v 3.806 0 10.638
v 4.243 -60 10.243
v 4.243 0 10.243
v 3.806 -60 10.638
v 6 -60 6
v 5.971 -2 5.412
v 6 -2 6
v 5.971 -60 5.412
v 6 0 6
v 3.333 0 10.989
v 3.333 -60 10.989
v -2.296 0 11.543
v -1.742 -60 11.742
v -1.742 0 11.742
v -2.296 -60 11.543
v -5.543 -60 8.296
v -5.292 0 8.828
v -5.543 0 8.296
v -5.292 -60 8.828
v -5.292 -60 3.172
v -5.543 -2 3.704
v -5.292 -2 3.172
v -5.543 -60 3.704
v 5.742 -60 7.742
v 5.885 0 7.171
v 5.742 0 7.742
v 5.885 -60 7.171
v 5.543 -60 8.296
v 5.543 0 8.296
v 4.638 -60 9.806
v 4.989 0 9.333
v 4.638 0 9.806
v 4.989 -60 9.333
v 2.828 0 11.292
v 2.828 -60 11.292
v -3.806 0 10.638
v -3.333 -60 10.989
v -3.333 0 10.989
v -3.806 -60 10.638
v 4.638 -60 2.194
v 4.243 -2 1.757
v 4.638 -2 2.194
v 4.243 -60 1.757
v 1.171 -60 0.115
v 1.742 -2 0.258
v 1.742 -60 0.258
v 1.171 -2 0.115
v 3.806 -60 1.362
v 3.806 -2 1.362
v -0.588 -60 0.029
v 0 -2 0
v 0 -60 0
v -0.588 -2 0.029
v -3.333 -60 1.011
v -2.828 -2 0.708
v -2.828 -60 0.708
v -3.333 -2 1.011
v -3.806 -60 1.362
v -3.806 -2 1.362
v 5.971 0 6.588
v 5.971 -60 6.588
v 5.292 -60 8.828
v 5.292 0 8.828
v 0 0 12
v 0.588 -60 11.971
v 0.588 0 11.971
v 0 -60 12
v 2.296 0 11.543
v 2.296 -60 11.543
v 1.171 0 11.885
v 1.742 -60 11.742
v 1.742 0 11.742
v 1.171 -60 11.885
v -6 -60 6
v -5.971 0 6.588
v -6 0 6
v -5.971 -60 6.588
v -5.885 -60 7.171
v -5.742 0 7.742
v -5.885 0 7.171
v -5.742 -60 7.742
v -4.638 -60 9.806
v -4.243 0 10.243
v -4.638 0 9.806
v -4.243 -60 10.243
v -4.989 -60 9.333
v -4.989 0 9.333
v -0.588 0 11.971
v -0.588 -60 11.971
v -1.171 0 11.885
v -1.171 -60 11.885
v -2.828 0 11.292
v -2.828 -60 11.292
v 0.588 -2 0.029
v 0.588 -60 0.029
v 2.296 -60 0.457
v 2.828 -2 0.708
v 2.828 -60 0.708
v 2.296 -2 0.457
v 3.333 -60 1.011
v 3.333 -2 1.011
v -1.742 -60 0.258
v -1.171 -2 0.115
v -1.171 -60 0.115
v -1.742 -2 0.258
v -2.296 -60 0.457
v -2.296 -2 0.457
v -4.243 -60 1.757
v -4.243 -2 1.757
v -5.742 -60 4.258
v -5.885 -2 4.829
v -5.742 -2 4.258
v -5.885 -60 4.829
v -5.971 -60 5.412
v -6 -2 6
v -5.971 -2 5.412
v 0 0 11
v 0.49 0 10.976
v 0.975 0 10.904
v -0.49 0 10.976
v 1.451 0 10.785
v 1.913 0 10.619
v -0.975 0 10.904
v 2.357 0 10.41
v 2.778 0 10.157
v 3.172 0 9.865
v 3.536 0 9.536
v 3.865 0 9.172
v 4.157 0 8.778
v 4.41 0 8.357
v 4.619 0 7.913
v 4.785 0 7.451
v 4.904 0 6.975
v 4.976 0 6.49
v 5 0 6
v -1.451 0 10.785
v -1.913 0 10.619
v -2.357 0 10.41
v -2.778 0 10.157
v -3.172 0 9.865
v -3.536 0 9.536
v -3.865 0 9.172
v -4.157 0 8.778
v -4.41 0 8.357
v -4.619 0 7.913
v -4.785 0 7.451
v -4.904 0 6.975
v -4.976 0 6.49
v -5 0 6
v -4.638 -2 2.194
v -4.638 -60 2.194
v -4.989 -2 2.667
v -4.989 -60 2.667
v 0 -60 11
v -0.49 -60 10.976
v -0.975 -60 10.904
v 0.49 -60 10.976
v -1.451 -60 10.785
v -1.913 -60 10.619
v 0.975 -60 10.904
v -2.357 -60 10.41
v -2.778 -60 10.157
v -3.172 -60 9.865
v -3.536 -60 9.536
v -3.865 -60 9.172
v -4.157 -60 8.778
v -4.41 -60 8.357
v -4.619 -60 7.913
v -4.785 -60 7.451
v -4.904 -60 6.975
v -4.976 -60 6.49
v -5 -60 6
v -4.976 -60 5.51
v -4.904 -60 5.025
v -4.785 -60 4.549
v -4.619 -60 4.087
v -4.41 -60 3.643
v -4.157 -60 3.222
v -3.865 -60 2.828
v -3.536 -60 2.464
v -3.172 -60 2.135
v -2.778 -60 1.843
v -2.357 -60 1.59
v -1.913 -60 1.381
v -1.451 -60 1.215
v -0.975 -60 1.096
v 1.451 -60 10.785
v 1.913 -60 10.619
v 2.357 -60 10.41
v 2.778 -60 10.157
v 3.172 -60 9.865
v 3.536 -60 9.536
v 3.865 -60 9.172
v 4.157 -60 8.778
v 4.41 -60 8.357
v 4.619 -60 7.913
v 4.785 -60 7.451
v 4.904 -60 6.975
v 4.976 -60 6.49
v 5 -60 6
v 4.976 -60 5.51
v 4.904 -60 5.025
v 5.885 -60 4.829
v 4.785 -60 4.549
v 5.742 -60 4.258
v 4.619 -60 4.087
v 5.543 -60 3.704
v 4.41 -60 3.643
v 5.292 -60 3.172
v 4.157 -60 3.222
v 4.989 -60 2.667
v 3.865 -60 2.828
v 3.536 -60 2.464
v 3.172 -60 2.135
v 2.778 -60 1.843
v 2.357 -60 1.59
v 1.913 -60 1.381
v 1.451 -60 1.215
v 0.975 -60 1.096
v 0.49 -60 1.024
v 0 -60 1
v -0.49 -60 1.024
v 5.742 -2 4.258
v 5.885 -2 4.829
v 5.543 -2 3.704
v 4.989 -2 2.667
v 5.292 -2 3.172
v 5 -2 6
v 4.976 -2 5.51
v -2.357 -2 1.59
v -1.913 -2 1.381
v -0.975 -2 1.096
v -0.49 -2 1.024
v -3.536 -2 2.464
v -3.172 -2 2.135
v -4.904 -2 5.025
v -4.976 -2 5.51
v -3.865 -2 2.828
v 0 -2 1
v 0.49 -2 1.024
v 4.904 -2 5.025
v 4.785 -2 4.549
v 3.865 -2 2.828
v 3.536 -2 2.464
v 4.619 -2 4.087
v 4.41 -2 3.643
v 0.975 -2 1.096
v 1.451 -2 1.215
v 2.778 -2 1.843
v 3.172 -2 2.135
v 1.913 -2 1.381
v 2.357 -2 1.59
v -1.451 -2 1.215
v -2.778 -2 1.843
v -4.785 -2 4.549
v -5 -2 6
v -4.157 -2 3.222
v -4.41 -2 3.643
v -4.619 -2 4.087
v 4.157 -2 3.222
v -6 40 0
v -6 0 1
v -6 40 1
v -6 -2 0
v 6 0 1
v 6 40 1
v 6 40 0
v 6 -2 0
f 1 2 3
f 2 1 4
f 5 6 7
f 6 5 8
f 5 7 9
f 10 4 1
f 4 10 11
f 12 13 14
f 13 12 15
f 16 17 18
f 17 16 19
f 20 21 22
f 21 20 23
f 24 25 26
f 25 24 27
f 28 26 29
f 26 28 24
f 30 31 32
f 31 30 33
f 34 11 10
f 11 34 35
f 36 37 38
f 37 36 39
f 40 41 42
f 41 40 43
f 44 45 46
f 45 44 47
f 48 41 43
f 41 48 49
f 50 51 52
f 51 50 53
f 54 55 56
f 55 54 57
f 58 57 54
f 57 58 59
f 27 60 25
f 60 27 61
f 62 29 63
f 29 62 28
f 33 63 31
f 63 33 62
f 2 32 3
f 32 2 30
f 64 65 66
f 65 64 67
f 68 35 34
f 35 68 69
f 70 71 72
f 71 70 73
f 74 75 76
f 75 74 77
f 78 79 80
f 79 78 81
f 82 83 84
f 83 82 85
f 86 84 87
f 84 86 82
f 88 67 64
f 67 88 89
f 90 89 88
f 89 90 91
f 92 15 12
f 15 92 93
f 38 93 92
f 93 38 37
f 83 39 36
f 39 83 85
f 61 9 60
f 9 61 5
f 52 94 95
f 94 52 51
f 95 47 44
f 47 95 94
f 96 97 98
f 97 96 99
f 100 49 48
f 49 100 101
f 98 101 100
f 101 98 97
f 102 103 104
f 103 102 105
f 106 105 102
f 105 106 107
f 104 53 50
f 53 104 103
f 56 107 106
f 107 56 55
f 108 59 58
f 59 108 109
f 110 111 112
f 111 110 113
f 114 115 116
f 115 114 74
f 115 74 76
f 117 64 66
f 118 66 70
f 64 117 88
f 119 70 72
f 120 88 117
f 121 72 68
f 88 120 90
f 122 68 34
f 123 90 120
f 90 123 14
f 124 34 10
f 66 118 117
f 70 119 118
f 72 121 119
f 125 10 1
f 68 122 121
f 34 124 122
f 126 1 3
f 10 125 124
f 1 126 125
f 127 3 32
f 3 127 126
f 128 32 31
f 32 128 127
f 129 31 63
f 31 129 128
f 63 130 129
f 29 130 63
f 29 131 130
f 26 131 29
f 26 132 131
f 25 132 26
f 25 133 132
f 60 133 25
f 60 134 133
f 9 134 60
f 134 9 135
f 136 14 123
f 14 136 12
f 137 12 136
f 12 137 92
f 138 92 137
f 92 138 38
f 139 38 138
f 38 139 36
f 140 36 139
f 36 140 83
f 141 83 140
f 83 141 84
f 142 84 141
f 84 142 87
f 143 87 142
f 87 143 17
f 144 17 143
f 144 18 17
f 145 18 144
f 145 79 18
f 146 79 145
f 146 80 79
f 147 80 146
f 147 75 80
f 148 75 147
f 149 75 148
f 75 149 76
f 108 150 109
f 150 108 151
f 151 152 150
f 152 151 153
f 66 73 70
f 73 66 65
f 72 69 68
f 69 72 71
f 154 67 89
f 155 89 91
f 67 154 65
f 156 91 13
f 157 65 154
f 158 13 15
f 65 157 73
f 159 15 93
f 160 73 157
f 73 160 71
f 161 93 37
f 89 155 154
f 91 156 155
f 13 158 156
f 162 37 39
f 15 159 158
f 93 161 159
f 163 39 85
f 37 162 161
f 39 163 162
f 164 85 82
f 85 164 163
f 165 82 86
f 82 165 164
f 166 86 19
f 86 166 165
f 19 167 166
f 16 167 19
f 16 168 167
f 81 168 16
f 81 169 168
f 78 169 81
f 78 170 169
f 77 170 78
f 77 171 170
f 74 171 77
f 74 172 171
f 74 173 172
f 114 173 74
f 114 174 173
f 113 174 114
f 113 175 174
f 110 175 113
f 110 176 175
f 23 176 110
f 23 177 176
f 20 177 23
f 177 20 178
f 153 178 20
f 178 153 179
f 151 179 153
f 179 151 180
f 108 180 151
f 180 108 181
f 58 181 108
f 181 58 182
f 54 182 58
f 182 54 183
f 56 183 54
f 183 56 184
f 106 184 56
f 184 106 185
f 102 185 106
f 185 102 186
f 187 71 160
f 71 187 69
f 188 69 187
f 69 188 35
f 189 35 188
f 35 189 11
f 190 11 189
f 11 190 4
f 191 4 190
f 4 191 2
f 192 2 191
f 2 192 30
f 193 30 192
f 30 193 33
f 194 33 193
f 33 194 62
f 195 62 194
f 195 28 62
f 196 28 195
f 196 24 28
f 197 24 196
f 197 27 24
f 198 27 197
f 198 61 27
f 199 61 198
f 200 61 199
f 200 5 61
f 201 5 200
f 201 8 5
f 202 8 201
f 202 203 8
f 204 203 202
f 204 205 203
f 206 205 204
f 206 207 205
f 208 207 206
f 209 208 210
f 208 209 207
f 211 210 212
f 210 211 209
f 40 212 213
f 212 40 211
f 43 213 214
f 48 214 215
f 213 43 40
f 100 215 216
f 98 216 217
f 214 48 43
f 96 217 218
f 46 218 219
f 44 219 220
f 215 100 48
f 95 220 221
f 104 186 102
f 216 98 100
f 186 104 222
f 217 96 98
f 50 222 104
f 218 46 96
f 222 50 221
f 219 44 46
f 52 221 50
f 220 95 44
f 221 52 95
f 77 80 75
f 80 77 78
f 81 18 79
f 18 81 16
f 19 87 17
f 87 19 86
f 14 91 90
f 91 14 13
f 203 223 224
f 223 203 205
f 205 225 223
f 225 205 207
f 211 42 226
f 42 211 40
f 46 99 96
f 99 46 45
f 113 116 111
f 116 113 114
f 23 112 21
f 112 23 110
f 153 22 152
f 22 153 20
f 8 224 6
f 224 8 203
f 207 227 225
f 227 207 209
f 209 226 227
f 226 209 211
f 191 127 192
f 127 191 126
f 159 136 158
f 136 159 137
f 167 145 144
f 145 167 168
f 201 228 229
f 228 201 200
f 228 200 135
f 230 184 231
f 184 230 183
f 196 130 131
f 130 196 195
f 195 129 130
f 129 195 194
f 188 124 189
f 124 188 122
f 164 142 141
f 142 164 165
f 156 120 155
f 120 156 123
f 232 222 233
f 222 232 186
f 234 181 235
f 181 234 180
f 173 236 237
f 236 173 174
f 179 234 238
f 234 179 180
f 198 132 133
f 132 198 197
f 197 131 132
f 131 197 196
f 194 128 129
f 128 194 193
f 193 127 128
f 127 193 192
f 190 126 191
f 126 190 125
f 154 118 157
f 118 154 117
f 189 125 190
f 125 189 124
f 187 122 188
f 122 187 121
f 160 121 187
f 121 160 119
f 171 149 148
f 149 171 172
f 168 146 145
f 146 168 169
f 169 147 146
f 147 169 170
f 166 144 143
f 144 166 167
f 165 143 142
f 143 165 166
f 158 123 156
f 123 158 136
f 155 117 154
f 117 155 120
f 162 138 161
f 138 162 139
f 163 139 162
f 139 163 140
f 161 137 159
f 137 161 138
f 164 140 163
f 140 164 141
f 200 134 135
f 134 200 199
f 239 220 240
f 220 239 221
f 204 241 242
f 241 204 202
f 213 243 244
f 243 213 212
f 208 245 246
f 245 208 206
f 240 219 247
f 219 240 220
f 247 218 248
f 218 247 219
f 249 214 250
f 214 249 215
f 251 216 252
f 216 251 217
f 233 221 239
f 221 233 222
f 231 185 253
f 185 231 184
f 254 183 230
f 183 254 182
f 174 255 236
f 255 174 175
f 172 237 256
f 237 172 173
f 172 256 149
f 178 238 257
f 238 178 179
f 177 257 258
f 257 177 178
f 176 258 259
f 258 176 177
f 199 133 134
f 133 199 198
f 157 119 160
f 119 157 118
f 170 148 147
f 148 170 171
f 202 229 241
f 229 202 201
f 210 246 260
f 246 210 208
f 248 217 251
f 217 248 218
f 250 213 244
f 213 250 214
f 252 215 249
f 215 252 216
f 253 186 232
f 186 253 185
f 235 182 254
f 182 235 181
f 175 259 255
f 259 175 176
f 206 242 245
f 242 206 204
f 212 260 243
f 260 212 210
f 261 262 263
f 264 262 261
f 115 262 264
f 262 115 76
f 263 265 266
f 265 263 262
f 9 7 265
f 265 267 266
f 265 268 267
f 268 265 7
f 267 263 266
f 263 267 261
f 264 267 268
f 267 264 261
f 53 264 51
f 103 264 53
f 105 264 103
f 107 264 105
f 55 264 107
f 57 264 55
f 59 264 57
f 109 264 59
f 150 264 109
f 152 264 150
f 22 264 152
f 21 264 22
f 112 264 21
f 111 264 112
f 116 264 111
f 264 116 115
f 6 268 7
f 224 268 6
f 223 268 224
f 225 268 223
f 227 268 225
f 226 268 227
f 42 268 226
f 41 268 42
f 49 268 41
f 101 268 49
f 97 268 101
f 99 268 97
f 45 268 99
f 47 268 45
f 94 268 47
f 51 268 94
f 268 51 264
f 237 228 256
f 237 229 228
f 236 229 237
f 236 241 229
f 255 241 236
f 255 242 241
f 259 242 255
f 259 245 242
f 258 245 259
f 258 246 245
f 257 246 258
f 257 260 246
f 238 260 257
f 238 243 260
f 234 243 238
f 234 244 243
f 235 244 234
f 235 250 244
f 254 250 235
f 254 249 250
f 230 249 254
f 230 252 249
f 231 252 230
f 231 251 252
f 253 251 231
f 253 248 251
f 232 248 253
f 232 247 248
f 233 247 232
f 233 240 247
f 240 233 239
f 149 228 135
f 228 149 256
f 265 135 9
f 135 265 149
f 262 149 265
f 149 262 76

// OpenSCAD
$fn = 64;

translate([0, 0, 6])
rotate([90, 0, 0])
difference() {
    cylinder(r=6, h=60);
    translate([0, 0, -1])
    cylinder(r=5, h=62);
}

translate([-6, -2, 0])
cube([12, 42, 1]);

translate([-6, -2, 0])
cube([12, 2, 6]);
